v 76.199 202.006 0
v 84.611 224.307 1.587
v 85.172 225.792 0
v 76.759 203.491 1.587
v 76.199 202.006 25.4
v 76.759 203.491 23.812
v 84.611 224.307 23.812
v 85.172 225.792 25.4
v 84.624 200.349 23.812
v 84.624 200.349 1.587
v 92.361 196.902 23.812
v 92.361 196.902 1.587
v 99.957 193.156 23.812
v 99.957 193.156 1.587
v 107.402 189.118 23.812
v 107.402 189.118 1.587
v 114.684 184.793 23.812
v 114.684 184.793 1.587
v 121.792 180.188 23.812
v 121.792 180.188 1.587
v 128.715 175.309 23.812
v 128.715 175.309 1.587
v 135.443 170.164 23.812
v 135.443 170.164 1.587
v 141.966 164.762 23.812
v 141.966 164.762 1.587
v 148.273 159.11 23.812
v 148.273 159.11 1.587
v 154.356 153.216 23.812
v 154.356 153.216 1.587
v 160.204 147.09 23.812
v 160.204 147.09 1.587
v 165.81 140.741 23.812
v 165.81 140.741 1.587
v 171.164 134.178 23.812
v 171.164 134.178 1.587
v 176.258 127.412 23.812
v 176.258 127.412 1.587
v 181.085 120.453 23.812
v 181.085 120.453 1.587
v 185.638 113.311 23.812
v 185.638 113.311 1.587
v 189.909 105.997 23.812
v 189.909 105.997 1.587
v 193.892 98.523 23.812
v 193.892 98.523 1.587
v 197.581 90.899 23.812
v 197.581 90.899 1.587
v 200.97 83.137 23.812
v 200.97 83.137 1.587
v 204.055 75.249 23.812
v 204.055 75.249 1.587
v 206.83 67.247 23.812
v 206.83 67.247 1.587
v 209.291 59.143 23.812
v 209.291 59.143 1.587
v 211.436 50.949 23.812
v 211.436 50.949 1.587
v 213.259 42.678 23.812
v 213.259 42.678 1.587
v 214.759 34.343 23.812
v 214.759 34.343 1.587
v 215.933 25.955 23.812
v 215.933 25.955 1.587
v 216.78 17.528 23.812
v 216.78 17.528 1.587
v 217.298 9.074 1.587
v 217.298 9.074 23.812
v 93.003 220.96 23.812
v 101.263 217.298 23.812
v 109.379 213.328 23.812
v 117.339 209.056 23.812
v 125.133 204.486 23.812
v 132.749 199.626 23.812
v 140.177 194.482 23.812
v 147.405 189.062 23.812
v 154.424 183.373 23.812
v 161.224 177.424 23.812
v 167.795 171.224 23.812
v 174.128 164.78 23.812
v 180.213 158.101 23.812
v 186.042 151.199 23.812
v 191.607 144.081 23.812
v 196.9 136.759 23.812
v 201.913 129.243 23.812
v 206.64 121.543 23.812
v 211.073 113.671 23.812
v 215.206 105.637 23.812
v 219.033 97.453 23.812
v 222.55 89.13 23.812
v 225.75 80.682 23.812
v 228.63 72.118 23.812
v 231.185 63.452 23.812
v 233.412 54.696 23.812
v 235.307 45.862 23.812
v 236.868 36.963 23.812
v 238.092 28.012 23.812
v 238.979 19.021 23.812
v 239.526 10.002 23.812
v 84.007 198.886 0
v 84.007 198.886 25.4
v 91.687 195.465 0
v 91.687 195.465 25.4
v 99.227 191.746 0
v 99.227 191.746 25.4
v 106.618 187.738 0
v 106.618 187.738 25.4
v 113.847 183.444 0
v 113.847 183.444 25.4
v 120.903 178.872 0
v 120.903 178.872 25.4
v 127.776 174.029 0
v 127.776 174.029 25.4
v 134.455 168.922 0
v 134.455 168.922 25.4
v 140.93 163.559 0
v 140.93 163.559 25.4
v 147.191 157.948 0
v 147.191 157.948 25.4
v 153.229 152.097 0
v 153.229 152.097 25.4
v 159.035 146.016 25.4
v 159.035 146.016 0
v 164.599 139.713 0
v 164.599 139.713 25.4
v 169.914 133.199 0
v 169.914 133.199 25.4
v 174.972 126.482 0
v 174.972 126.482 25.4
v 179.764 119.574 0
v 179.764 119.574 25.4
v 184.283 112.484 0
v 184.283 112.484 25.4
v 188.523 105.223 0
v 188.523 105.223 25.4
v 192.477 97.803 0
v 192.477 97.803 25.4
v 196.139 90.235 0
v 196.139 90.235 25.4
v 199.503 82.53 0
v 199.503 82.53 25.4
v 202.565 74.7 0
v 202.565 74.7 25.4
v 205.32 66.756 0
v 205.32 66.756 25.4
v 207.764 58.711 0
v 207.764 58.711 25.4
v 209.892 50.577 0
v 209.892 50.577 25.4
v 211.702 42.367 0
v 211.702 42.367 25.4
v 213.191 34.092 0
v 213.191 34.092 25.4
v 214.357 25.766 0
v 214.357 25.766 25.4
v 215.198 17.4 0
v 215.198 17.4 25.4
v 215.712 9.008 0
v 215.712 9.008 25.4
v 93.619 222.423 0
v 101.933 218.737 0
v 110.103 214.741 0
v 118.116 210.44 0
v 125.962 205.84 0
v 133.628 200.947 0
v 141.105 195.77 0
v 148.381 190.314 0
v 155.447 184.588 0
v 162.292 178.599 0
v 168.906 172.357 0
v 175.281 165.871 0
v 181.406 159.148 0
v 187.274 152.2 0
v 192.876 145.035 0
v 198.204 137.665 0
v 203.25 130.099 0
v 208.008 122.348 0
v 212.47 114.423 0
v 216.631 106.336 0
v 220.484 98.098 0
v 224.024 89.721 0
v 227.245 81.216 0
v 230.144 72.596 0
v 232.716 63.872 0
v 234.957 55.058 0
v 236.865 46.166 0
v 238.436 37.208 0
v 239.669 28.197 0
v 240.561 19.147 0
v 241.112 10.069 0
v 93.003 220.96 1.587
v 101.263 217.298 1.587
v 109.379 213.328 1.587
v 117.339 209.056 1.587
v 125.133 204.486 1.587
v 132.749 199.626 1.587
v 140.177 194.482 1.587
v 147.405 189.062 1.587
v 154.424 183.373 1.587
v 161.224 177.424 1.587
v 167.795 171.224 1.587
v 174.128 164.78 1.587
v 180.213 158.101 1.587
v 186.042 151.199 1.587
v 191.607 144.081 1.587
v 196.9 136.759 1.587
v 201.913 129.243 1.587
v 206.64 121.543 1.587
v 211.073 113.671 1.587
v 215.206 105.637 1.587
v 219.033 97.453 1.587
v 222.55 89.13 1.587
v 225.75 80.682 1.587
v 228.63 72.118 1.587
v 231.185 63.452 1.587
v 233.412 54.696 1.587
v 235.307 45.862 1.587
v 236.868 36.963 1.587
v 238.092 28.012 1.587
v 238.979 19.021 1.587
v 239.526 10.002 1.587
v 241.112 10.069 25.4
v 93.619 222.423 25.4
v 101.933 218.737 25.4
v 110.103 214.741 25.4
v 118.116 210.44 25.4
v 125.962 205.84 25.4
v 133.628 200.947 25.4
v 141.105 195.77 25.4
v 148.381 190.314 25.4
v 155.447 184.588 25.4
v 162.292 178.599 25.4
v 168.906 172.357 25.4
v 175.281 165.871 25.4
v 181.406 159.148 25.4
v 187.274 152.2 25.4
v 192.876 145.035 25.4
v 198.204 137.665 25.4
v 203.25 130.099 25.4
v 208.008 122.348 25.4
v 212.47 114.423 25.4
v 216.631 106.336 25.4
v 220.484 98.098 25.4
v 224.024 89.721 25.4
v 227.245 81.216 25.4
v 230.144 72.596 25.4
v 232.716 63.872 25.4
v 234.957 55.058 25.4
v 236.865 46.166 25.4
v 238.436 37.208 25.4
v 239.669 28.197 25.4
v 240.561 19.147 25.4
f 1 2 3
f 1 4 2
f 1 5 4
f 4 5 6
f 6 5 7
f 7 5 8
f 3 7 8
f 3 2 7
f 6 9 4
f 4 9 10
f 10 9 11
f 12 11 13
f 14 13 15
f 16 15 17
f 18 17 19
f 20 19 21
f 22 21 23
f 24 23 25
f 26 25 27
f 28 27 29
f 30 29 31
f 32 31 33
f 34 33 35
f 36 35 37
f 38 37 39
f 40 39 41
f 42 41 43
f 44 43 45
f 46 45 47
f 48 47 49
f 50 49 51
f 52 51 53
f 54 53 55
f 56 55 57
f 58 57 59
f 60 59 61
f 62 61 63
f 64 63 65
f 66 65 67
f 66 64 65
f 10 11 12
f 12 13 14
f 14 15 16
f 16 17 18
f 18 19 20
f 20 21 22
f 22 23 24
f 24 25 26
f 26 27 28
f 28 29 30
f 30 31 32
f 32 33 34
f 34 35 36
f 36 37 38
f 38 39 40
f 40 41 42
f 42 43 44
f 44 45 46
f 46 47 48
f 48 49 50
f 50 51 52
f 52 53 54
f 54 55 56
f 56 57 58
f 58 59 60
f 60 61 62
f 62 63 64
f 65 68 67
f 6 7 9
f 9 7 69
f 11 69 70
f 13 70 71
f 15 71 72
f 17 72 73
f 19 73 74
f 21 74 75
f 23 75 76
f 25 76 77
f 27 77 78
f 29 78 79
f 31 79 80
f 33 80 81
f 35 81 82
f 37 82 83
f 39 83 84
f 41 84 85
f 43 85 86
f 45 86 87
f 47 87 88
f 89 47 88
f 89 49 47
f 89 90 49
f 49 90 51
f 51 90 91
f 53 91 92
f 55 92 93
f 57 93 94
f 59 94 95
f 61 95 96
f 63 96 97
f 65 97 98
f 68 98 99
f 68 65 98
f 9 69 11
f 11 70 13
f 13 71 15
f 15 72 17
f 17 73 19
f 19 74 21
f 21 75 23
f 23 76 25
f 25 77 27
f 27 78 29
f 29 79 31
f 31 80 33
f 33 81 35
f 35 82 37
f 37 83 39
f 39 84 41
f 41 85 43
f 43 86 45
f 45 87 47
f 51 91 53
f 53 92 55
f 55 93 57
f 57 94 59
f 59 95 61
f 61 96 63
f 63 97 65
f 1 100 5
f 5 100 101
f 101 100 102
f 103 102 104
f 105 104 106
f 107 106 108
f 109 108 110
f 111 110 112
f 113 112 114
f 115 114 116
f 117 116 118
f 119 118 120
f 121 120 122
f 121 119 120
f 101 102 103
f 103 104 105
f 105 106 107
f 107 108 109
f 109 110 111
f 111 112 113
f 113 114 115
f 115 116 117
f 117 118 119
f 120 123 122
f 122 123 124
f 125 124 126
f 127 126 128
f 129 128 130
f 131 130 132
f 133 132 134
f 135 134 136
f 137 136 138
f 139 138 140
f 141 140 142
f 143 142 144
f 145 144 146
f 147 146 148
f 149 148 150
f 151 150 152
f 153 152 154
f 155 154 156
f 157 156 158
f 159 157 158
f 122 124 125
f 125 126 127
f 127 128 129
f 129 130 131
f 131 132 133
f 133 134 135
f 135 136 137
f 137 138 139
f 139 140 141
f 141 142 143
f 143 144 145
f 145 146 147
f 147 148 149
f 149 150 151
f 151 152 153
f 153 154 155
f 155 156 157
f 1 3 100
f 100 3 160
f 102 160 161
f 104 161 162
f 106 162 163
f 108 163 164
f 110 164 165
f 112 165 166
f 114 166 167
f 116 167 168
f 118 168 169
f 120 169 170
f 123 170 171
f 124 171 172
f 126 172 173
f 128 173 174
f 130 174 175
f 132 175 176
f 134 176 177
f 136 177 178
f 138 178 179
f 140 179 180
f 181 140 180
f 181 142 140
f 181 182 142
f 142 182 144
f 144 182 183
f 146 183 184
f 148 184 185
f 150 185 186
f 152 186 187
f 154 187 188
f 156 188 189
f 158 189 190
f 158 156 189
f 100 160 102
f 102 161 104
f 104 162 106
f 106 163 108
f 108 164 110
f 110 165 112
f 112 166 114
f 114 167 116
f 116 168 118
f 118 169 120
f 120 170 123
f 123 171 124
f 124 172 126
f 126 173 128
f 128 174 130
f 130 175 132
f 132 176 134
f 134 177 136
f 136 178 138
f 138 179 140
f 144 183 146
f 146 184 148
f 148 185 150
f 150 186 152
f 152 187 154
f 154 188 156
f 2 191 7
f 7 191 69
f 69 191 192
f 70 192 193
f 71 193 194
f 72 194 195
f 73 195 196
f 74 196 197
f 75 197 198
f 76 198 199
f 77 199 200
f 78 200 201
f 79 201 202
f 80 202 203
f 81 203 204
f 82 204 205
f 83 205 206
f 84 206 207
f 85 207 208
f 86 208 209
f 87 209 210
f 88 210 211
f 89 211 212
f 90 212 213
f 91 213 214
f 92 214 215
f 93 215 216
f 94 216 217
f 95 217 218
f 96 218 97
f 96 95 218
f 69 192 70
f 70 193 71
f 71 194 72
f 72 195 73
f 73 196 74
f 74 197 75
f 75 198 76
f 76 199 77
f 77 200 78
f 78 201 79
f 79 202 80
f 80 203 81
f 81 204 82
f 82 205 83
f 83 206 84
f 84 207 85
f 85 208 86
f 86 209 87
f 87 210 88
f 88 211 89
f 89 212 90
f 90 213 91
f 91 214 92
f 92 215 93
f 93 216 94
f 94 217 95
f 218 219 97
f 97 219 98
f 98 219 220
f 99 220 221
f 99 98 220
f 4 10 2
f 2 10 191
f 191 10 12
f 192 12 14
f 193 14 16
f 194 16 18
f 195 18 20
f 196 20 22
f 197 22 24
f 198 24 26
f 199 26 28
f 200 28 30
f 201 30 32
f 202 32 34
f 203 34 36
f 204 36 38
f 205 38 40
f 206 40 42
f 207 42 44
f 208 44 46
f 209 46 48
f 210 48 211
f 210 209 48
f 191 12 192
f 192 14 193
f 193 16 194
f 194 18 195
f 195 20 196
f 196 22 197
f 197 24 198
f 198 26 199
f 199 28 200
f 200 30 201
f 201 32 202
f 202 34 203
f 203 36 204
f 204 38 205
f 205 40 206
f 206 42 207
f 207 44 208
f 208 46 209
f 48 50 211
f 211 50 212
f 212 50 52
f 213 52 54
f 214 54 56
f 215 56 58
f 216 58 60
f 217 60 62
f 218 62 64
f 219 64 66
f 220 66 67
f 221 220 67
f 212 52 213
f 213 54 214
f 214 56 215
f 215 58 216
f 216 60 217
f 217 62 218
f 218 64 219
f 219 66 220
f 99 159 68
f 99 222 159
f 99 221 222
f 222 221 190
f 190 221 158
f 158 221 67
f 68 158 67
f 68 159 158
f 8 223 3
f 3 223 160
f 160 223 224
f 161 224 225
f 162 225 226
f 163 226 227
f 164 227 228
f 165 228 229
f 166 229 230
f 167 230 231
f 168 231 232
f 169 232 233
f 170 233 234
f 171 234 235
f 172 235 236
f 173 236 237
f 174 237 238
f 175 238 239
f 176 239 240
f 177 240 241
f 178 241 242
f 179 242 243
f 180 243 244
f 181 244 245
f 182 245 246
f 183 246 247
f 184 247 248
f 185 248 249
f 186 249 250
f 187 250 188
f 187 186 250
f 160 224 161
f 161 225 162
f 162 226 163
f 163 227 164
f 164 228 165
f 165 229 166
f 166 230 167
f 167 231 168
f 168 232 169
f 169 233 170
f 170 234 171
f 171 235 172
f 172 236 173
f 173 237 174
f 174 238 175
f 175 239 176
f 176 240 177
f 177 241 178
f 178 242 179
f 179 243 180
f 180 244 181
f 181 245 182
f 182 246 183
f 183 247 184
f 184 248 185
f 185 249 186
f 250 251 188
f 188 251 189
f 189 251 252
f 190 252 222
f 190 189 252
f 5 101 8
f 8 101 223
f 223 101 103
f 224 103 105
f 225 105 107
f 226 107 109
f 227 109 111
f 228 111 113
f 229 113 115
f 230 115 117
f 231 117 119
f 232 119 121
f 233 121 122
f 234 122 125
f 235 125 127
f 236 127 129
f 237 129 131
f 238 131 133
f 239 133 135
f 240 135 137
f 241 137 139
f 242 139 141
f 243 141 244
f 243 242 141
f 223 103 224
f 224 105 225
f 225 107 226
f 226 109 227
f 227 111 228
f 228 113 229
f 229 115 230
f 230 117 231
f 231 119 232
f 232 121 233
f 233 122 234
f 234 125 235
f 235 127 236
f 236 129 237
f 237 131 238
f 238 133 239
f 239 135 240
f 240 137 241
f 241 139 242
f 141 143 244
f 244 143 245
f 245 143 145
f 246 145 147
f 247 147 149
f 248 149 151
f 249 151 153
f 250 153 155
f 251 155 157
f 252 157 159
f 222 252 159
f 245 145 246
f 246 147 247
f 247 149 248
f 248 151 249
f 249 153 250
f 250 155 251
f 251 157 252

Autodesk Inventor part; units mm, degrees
ref_plane "YZ Plane" through (0, 0, 0) normal (1, 0, 0) x (0, 1, 0)
ref_plane "XZ Plane" through (0, 0, 0) normal (0, 1, 0) x (-1, 0, 0)
ref_plane "XY Plane" through (0, 0, 0) normal (0, 0, 1) x (1, 0, 0)
sketch "Sketch1" plane through (0, 0, 0) normal (0, 0, 1) x (1, 0, 0)
  arc A0 (241.112, 10.0687) -> (56.7808, 234.547) centre (0, 0) ccw
  arc A1 (215.712, 9.008) -> (50.7992, 209.8386) centre (0, 0) ccw
  line L0 (241.112, 10.0687) -> (215.712, 9.008)
  line L1 (56.7808, 234.547) -> (50.7992, 209.8386)
  line L2 (56.7808, 234.547) -> (0, 0) construction
  line L3 (0, 0) -> (241.112, 10.0687) construction
  point P0 (0, 0)
  dimension "d0" = 74
  dimension "d1" = 25.4
  dimension "d2" = 215.9
extrude "Extrusion1" add sketch "Sketch1" along normal blind 25.4
shell "Shell1" thickness 1.5875 removed faces 2 at (232.6453, 9.7152, 8.4667) at (52.7931, 218.0748, 8.4667)
sketch "Sketch2" plane through (0, 0, 25.4) normal (0, 0, 1) x (1, 0, 0)
  line L0 (50.7992, 209.8386) -> (56.7808, 234.547) projected
  arc A0 (215.712, 9.008) -> (50.7992, 209.8386) centre (0, 0) ccw projected
  line L1 (56.7808, 234.547) -> (50.7992, 209.8386)
  arc A1 (76.1992, 202.0062) -> (50.7992, 209.8386) centre (0, 0) ccw
  arc A2 (85.1716, 225.7923) -> (56.7808, 234.547) centre (0, 0) ccw
  line L2 (76.1992, 202.0062) -> (85.1716, 225.7923)
  line L3 (0, 0) -> (76.1992, 202.0062) construction
  line L4 (50.7992, 209.8386) -> (76.1992, 202.0062) construction
  dimension "d6" = 25.4
extrude "Extrusion2" cut sketch "Sketch2" against normal through all
properties part number "Frame_BottomGuideRail"
